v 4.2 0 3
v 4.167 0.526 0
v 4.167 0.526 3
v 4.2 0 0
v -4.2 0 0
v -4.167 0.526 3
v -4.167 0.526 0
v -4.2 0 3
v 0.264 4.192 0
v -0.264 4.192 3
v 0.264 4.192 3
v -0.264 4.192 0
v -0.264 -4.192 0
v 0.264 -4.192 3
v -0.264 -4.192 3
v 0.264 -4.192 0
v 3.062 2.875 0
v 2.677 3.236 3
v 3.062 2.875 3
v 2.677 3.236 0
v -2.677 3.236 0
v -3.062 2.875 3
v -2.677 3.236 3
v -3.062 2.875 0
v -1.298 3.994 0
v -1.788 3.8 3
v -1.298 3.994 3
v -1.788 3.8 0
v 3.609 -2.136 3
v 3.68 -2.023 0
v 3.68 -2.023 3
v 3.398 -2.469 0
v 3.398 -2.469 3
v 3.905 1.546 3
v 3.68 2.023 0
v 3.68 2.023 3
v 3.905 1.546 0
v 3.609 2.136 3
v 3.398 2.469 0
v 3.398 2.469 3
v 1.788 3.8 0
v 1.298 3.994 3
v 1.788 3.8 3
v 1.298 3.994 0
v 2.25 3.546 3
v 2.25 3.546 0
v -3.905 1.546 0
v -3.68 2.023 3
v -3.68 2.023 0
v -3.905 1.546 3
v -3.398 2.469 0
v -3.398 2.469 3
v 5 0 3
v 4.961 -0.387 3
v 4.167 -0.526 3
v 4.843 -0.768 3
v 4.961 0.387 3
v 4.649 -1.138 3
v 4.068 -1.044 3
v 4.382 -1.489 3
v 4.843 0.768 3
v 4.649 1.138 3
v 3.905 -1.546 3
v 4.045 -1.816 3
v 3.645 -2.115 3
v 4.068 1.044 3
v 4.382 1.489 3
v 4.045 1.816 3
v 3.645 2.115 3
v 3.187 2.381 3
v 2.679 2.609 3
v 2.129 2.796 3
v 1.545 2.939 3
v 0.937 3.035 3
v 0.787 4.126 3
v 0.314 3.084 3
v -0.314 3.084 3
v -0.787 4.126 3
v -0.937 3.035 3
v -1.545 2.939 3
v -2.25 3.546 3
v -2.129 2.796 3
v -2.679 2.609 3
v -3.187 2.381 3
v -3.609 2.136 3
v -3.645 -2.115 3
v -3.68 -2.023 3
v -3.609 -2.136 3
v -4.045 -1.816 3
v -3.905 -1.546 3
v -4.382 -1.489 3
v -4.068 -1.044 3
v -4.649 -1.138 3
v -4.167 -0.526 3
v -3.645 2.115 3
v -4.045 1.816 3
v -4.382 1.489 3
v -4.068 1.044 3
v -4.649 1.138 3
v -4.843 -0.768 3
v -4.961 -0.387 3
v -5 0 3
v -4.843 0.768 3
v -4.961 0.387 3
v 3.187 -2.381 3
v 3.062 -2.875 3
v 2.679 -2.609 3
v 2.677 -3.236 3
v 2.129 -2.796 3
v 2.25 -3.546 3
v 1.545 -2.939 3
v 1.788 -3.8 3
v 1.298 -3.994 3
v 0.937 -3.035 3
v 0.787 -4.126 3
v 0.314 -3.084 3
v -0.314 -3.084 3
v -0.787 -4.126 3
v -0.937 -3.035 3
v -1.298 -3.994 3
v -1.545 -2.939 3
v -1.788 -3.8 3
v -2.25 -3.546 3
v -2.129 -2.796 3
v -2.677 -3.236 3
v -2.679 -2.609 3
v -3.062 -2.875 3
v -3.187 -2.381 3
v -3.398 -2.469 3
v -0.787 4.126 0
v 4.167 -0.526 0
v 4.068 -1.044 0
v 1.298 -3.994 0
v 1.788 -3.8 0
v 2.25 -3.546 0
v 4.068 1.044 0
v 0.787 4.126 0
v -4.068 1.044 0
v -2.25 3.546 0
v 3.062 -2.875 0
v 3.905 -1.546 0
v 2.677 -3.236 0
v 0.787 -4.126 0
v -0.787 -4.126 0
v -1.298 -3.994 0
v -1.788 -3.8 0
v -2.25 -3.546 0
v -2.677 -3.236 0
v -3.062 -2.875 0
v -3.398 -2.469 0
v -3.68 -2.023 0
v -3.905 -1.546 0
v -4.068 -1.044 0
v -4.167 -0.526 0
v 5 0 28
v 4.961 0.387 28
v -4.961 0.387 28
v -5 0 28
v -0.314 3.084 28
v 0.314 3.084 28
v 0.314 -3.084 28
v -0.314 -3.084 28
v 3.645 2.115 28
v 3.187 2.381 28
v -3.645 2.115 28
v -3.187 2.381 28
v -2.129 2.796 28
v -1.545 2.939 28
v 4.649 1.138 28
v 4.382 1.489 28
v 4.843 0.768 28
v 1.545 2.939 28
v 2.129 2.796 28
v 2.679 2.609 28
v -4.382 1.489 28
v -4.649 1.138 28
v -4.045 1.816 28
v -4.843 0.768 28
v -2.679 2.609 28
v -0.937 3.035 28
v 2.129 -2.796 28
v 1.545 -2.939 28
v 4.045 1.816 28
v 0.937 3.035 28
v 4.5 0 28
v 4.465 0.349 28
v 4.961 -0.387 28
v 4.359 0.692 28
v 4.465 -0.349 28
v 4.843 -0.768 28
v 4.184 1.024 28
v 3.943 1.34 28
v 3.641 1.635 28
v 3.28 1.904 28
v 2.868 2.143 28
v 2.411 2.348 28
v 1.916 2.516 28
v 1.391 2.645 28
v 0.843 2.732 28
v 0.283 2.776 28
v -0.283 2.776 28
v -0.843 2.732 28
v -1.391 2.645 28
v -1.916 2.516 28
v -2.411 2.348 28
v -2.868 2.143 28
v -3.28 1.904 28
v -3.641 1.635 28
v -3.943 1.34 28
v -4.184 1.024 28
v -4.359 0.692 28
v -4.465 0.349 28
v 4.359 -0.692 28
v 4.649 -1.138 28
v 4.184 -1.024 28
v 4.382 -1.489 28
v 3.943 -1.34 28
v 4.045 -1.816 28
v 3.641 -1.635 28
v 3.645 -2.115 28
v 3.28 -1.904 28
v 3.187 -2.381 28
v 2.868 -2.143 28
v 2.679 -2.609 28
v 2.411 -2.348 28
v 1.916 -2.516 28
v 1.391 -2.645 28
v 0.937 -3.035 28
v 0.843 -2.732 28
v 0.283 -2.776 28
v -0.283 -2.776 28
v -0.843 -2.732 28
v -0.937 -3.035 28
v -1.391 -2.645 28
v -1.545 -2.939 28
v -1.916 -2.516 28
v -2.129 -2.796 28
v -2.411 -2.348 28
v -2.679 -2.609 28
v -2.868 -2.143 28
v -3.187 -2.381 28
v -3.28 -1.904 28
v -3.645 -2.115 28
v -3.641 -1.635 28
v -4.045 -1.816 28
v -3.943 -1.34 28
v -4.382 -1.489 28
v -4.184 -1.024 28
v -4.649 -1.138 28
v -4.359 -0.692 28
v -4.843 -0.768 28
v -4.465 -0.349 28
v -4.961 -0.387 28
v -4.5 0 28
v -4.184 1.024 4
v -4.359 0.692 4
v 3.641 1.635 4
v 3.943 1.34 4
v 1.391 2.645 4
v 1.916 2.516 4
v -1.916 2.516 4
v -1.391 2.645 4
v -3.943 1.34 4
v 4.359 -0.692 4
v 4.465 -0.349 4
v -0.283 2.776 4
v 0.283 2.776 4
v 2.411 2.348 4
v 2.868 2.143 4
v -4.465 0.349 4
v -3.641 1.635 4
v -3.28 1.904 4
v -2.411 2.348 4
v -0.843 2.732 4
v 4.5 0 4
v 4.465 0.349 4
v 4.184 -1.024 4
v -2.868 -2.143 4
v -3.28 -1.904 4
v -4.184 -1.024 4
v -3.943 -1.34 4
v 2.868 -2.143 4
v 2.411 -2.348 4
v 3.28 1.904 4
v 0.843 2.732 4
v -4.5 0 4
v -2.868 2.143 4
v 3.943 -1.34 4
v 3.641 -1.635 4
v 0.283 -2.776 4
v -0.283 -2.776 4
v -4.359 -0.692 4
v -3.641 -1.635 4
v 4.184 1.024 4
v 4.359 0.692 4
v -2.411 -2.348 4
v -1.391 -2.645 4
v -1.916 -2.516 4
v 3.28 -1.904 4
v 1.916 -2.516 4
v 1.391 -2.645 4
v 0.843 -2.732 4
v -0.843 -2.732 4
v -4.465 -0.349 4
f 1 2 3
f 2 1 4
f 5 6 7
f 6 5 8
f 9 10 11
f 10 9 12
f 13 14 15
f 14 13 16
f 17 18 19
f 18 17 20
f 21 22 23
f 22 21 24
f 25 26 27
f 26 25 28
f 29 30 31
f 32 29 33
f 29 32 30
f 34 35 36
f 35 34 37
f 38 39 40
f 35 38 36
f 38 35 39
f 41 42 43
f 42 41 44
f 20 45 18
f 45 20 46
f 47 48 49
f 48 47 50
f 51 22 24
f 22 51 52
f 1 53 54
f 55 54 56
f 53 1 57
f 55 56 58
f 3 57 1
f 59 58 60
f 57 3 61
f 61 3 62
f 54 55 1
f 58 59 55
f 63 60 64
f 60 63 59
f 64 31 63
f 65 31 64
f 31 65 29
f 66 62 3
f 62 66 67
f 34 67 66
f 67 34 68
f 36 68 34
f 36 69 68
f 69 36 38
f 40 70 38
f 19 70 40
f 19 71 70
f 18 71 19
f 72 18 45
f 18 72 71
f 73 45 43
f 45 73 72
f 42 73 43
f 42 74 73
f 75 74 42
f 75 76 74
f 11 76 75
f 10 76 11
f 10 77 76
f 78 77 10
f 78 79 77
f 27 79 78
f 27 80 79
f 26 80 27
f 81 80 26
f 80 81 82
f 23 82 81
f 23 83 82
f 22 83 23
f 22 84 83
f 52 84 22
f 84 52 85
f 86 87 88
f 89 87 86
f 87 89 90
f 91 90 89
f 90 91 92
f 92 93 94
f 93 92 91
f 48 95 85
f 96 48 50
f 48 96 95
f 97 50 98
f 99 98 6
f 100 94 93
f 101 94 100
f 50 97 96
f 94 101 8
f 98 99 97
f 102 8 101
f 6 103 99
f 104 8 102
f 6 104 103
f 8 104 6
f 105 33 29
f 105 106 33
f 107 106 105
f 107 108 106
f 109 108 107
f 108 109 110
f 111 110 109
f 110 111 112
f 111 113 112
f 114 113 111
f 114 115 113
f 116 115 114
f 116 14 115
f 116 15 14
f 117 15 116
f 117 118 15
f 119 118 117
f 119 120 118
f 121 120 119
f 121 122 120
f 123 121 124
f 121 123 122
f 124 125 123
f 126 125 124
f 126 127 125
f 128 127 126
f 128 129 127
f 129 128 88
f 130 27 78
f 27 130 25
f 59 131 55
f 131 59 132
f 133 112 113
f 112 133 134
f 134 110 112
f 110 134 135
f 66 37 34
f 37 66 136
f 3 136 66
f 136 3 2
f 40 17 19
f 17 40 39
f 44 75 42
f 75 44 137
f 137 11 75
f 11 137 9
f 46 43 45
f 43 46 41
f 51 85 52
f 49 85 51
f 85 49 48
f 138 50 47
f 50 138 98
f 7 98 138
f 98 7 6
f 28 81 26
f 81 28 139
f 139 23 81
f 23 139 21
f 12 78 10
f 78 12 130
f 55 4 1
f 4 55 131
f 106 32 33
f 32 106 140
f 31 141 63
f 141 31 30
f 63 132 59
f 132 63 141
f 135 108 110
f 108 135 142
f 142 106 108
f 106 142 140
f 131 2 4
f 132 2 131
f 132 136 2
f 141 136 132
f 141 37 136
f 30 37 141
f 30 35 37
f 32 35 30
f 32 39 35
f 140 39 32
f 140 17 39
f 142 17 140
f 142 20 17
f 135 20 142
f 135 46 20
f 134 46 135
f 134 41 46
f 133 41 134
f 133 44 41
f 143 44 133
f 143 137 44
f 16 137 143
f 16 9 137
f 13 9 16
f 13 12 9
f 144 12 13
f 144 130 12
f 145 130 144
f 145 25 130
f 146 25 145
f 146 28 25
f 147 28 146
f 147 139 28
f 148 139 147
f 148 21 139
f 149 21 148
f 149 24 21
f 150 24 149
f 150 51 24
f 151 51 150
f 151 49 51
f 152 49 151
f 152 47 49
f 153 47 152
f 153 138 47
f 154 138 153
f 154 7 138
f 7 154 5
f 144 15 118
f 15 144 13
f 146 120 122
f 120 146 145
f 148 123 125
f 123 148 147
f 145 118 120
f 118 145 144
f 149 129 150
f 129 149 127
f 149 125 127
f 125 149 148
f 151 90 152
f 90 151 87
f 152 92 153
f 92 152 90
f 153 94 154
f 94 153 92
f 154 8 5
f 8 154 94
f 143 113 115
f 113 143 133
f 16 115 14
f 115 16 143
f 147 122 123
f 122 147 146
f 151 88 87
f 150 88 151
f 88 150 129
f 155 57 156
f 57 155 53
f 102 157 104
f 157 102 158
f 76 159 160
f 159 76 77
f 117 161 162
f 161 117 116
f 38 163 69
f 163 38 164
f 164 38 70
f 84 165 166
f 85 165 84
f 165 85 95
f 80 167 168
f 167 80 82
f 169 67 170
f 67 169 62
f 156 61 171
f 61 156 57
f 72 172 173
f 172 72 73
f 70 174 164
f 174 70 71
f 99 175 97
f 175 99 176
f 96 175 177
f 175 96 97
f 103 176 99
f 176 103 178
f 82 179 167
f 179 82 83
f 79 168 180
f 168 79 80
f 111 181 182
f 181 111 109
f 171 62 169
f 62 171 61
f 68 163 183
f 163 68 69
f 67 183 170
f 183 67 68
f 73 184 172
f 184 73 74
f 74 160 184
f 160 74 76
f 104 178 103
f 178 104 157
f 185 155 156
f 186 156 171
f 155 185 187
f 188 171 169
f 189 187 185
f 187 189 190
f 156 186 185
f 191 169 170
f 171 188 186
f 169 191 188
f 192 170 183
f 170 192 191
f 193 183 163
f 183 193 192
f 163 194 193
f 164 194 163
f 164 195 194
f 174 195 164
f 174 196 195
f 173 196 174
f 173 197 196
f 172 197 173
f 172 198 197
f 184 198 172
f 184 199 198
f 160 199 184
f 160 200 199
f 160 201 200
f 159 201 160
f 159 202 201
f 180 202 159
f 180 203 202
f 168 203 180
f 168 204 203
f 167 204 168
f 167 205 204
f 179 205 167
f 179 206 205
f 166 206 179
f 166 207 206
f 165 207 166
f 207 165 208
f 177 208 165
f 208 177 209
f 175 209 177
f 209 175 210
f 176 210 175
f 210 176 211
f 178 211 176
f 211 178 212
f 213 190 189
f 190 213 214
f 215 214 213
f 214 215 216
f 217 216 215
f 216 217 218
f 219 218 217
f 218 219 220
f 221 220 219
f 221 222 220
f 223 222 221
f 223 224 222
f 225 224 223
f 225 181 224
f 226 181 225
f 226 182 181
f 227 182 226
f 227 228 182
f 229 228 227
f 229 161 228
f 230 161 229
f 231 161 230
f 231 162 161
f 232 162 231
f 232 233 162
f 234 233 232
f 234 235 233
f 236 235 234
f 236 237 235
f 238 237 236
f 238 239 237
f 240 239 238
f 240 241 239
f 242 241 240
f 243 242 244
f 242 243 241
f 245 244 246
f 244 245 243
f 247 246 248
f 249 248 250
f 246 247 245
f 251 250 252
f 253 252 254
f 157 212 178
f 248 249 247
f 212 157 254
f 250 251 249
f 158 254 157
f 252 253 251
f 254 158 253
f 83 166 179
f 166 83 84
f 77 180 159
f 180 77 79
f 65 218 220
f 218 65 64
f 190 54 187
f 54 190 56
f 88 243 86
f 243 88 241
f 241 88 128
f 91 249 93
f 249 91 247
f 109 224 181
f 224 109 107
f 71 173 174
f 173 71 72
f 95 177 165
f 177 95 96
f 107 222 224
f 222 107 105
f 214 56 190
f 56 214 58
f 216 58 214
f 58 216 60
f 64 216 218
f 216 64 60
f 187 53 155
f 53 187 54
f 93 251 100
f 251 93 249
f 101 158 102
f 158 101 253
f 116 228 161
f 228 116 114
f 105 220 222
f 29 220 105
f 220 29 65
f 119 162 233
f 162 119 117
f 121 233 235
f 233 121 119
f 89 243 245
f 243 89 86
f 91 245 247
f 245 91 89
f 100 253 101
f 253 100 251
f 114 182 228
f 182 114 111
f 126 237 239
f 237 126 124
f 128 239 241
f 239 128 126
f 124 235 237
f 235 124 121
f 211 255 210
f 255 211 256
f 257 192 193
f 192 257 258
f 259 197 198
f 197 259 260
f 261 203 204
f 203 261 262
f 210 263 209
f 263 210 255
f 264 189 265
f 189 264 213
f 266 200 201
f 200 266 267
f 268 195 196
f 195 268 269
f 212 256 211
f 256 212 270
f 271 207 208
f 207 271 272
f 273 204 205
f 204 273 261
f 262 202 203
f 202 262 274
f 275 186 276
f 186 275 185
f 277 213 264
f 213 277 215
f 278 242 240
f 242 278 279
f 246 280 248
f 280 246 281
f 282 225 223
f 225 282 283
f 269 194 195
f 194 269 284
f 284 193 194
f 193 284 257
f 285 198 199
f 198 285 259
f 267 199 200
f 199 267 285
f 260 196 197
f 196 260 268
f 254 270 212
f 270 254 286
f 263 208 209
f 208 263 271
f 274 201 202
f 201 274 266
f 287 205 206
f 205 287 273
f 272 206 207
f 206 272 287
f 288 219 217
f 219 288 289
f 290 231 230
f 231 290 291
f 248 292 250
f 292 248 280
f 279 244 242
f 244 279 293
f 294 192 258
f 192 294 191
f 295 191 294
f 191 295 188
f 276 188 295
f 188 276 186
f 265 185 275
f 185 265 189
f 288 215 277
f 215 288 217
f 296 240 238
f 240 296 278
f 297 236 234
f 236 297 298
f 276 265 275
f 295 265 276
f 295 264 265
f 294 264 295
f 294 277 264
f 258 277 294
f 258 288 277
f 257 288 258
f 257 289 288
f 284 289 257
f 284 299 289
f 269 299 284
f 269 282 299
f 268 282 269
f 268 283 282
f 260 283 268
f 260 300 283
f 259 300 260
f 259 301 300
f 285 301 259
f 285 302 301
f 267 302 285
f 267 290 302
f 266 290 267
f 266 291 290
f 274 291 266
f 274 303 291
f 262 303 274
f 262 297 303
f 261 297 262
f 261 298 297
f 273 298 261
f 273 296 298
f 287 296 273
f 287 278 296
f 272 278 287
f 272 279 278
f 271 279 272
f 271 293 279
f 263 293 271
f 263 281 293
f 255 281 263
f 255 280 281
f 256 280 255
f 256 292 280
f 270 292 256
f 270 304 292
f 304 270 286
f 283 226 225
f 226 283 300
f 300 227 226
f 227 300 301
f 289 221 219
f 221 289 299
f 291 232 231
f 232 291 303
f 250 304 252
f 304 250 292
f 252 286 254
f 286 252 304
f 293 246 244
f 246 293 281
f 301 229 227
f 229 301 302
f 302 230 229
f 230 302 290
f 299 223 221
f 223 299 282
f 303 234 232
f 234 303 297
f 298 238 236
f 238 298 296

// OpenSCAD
$fn=50;

module sampleholder(cylinder_height,
                    cylinder_diameter,
                    wall_thickness=1,
                    pin_height=10,
                    ) {
    difference() { // Cut out cylinder with given diameter from cylinder with given diameter plus wall thickness
        union() { // Collect the bottom pin and the cylinder
            cylinder(d=8.4, h=pin_height); // Bottom pin
            scale([1, 0.618, 1]) { // squash the tube
                translate([0,0,pin_height]) { // Move the actual holder cylinder up
                    cylinder(d=cylinder_diameter+wall_thickness,h=cylinder_height);
                    }
                }
                }
                translate([0,0,pin_height+wall_thickness]) {  // Move the drilling sphere and cylinder up
                    scale([1, 0.618, 1]) { // squash the tube
                    #cylinder(d=cylinder_diameter, h=cylinder_height+1);
                        }
                    }
                }
            }

sampleholder(25, 9, pin_height=3);
